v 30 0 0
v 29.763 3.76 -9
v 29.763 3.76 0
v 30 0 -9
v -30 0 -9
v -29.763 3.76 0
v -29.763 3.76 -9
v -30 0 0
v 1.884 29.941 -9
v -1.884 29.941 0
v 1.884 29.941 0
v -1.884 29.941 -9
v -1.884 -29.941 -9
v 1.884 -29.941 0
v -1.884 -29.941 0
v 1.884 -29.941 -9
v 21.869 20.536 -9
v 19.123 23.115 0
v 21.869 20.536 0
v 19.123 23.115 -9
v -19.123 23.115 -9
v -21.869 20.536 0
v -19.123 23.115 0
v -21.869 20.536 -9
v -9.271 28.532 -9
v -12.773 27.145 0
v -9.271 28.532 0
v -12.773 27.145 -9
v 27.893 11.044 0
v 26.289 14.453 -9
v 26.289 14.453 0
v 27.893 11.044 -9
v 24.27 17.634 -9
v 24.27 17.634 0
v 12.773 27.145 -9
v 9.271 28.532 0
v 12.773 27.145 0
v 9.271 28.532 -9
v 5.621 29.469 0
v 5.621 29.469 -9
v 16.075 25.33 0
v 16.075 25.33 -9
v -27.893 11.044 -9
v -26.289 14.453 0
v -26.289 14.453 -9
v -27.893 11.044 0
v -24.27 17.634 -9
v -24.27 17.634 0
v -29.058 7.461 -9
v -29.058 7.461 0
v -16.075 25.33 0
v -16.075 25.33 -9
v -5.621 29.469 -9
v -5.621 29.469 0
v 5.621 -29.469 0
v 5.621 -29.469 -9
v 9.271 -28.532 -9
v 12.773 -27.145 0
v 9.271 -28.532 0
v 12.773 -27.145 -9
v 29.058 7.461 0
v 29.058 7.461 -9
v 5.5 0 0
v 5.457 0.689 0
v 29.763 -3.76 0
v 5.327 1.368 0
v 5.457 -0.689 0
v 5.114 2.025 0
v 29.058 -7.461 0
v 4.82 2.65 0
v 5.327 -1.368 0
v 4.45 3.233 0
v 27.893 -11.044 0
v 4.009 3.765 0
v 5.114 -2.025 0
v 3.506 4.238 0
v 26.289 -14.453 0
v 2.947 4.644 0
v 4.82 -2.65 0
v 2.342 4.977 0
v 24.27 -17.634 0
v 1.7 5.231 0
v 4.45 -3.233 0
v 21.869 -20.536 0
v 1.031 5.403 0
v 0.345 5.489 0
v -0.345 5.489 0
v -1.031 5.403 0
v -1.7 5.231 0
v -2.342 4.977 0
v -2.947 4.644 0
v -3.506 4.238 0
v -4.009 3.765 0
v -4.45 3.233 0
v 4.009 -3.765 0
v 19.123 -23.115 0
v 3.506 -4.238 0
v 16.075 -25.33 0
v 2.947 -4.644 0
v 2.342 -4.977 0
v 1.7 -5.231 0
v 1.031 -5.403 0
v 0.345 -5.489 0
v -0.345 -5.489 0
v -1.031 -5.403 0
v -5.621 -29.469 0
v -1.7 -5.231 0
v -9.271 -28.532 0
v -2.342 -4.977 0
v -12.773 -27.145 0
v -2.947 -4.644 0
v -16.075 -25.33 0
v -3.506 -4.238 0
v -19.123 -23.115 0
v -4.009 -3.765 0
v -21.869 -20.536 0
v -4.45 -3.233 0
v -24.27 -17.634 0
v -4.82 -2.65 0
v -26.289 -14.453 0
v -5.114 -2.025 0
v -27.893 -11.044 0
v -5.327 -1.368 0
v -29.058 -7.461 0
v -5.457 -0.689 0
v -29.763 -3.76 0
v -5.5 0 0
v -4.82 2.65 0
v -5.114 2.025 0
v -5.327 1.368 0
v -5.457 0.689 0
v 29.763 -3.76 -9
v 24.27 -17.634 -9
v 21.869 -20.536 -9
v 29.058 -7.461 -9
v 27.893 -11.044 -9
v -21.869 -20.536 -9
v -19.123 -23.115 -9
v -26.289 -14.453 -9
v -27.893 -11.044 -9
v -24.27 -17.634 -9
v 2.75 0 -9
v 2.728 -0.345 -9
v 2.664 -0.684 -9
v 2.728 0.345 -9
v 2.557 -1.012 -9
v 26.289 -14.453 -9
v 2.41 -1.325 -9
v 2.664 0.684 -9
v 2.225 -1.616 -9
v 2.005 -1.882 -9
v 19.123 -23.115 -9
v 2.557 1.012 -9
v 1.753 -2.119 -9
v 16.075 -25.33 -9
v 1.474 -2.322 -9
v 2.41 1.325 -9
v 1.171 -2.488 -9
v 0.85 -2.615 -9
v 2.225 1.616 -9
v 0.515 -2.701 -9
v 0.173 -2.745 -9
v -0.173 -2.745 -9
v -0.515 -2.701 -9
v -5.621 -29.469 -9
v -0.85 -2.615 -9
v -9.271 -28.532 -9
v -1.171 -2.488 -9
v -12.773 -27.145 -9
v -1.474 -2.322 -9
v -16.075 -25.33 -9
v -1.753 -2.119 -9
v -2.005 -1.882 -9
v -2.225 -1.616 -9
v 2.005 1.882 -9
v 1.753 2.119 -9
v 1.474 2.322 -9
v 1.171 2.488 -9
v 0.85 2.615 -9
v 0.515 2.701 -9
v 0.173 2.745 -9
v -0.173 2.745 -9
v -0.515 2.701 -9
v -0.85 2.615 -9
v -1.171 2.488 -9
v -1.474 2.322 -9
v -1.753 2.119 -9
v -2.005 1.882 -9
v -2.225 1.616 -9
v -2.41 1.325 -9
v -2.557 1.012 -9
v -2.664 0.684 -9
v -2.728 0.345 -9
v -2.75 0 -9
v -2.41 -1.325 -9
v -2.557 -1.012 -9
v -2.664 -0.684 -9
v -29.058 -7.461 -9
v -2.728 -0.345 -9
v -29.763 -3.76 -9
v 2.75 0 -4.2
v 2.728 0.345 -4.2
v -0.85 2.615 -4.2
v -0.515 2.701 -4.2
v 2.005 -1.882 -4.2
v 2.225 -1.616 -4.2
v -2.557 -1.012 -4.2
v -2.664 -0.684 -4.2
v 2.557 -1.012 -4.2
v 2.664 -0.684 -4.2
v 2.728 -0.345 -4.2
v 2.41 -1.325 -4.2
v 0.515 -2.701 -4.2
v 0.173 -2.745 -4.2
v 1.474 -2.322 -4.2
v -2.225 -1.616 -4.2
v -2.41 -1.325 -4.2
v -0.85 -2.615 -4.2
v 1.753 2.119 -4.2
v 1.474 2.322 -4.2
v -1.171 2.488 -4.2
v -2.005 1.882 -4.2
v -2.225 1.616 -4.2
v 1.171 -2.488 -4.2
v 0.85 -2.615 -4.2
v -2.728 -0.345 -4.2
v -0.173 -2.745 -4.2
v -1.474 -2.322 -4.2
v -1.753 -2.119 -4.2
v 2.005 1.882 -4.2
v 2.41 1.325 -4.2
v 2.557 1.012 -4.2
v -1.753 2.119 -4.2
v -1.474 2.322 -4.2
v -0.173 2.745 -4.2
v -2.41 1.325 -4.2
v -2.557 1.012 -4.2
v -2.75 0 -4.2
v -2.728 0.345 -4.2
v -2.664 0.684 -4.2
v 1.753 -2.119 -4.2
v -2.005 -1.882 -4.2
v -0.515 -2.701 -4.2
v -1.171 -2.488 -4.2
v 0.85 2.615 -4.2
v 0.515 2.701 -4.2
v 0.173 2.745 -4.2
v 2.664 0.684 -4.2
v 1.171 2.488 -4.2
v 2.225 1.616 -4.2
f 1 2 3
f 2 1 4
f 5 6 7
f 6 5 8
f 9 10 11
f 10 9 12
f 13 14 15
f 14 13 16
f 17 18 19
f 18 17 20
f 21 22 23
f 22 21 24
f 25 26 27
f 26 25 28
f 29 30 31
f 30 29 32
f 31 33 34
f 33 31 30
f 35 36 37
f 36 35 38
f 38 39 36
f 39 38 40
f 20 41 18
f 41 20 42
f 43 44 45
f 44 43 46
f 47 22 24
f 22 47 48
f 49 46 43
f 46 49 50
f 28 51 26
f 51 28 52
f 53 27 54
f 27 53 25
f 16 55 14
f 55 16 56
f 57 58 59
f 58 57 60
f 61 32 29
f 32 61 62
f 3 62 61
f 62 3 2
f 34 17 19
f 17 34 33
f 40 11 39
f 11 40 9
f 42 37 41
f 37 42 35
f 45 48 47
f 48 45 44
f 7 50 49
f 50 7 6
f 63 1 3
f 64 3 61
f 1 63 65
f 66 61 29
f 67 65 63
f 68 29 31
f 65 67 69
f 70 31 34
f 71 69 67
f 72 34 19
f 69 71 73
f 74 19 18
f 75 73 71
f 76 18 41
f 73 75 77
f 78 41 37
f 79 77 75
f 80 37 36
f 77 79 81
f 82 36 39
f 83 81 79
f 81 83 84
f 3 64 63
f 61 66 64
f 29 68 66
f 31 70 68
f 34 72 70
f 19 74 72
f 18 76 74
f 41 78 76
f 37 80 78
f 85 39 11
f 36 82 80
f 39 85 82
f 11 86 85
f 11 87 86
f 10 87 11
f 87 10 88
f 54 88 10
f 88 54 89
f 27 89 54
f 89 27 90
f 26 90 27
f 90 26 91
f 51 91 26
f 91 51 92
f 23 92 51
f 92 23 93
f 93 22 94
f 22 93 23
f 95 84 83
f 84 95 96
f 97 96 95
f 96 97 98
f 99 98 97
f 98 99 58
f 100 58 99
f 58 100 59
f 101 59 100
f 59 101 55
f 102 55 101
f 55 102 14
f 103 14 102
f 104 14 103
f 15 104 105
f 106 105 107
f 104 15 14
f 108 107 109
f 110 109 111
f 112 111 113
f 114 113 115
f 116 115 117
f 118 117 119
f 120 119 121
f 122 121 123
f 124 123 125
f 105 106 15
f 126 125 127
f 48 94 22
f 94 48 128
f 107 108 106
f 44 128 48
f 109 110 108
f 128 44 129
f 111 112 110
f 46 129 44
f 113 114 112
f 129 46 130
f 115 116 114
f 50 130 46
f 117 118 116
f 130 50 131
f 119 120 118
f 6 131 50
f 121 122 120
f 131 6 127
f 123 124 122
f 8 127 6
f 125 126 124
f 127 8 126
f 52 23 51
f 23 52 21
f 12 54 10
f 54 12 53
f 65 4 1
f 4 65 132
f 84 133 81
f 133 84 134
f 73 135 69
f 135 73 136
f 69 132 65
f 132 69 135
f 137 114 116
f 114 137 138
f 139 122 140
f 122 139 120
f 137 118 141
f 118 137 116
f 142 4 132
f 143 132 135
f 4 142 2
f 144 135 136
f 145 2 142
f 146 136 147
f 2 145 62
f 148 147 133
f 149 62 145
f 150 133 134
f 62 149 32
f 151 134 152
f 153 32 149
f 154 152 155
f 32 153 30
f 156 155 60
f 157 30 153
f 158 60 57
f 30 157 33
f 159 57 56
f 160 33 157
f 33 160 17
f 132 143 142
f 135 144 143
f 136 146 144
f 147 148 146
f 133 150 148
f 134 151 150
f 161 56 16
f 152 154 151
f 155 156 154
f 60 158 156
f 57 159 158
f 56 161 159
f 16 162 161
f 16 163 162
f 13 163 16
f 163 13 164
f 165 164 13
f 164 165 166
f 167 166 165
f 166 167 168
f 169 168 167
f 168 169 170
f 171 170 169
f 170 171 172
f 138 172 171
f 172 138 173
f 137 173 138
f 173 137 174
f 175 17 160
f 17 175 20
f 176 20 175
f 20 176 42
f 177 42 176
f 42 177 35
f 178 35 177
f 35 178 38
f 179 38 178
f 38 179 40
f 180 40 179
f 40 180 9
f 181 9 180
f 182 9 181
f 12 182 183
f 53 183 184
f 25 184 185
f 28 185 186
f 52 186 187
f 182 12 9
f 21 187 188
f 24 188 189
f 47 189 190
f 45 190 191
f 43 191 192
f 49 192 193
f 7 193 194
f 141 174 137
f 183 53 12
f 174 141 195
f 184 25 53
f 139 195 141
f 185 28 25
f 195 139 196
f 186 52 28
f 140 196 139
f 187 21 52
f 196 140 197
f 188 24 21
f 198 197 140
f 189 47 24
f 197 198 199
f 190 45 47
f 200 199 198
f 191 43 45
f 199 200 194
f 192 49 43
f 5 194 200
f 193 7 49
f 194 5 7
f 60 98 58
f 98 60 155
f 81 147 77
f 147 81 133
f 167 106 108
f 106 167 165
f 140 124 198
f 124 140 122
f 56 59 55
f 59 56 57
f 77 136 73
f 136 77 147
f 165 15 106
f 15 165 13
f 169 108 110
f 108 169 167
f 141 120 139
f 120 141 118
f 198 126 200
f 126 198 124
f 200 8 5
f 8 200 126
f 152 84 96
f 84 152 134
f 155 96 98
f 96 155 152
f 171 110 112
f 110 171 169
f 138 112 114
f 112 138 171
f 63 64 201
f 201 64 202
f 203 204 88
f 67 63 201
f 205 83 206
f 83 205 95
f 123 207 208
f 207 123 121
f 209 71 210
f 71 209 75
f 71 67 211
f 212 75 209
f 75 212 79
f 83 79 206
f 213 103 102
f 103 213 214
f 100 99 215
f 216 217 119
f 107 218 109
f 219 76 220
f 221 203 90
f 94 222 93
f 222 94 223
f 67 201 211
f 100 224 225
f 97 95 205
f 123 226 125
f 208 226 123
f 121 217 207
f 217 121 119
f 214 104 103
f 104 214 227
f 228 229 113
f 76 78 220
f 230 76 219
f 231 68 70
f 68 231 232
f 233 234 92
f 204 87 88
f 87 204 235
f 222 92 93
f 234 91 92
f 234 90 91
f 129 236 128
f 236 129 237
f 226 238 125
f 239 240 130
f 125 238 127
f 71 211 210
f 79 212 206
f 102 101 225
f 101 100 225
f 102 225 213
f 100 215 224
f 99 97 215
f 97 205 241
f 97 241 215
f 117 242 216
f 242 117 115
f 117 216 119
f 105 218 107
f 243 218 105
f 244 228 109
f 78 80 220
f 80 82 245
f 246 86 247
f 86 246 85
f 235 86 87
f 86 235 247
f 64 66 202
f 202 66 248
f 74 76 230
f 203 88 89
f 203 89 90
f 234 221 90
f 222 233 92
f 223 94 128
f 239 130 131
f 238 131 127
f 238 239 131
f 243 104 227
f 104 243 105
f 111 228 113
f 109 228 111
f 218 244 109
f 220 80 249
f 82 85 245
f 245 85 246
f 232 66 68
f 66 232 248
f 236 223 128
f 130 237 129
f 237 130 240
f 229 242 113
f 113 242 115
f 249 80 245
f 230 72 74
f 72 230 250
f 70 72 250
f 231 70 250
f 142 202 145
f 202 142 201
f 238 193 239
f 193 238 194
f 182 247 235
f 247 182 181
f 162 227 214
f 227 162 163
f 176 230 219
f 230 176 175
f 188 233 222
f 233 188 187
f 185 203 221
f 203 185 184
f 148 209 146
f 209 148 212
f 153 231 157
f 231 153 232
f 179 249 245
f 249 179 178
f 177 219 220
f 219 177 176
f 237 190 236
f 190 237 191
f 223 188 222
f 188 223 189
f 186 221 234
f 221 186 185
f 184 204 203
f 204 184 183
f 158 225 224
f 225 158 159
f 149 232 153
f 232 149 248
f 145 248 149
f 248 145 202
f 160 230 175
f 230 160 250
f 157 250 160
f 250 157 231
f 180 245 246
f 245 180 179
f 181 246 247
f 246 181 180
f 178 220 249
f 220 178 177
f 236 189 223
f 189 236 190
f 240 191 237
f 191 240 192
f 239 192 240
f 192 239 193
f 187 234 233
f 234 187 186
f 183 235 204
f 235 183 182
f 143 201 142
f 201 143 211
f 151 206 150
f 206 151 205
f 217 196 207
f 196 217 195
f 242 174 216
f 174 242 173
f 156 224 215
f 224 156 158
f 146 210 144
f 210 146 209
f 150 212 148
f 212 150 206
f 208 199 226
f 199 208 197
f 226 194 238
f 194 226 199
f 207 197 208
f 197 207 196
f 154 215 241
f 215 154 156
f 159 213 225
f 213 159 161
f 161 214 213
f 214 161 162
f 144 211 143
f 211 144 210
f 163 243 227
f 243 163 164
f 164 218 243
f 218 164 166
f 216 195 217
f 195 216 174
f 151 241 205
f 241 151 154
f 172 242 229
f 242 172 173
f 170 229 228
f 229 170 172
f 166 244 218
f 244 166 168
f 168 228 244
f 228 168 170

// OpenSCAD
$fn = 50;


difference() {
	union() {
		translate(v = [0, 0, -9.0000000000]) {
			cylinder(h = 9, r = 30.0000000000);
		}
		translate(v = [0, 0, -9.0000000000]) {
			cylinder(h = 9, r = 2.8750000000);
		}
	}
	union() {
		translate(v = [0, 0, 0]) {
			rotate(a = [0, 0, 0]) {
				difference() {
					union() {
						#translate(v = [0, 0, -9.0000000000]) {
							cylinder(h = 9, r = 2.2500000000);
						}
						#translate(v = [0, 0, -4.2000000000]) {
							cylinder(h = 4.2000000000, r1 = 2.7500000000, r2 = 5.5000000000);
						}
						#translate(v = [0, 0, -9.0000000000]) {
							cylinder(h = 9, r = 2.7500000000);
						}
						#translate(v = [0, 0, -9.0000000000]) {
							cylinder(h = 9, r = 2.2500000000);
						}
					}
					union();
				}
			}
		}
	}
}
